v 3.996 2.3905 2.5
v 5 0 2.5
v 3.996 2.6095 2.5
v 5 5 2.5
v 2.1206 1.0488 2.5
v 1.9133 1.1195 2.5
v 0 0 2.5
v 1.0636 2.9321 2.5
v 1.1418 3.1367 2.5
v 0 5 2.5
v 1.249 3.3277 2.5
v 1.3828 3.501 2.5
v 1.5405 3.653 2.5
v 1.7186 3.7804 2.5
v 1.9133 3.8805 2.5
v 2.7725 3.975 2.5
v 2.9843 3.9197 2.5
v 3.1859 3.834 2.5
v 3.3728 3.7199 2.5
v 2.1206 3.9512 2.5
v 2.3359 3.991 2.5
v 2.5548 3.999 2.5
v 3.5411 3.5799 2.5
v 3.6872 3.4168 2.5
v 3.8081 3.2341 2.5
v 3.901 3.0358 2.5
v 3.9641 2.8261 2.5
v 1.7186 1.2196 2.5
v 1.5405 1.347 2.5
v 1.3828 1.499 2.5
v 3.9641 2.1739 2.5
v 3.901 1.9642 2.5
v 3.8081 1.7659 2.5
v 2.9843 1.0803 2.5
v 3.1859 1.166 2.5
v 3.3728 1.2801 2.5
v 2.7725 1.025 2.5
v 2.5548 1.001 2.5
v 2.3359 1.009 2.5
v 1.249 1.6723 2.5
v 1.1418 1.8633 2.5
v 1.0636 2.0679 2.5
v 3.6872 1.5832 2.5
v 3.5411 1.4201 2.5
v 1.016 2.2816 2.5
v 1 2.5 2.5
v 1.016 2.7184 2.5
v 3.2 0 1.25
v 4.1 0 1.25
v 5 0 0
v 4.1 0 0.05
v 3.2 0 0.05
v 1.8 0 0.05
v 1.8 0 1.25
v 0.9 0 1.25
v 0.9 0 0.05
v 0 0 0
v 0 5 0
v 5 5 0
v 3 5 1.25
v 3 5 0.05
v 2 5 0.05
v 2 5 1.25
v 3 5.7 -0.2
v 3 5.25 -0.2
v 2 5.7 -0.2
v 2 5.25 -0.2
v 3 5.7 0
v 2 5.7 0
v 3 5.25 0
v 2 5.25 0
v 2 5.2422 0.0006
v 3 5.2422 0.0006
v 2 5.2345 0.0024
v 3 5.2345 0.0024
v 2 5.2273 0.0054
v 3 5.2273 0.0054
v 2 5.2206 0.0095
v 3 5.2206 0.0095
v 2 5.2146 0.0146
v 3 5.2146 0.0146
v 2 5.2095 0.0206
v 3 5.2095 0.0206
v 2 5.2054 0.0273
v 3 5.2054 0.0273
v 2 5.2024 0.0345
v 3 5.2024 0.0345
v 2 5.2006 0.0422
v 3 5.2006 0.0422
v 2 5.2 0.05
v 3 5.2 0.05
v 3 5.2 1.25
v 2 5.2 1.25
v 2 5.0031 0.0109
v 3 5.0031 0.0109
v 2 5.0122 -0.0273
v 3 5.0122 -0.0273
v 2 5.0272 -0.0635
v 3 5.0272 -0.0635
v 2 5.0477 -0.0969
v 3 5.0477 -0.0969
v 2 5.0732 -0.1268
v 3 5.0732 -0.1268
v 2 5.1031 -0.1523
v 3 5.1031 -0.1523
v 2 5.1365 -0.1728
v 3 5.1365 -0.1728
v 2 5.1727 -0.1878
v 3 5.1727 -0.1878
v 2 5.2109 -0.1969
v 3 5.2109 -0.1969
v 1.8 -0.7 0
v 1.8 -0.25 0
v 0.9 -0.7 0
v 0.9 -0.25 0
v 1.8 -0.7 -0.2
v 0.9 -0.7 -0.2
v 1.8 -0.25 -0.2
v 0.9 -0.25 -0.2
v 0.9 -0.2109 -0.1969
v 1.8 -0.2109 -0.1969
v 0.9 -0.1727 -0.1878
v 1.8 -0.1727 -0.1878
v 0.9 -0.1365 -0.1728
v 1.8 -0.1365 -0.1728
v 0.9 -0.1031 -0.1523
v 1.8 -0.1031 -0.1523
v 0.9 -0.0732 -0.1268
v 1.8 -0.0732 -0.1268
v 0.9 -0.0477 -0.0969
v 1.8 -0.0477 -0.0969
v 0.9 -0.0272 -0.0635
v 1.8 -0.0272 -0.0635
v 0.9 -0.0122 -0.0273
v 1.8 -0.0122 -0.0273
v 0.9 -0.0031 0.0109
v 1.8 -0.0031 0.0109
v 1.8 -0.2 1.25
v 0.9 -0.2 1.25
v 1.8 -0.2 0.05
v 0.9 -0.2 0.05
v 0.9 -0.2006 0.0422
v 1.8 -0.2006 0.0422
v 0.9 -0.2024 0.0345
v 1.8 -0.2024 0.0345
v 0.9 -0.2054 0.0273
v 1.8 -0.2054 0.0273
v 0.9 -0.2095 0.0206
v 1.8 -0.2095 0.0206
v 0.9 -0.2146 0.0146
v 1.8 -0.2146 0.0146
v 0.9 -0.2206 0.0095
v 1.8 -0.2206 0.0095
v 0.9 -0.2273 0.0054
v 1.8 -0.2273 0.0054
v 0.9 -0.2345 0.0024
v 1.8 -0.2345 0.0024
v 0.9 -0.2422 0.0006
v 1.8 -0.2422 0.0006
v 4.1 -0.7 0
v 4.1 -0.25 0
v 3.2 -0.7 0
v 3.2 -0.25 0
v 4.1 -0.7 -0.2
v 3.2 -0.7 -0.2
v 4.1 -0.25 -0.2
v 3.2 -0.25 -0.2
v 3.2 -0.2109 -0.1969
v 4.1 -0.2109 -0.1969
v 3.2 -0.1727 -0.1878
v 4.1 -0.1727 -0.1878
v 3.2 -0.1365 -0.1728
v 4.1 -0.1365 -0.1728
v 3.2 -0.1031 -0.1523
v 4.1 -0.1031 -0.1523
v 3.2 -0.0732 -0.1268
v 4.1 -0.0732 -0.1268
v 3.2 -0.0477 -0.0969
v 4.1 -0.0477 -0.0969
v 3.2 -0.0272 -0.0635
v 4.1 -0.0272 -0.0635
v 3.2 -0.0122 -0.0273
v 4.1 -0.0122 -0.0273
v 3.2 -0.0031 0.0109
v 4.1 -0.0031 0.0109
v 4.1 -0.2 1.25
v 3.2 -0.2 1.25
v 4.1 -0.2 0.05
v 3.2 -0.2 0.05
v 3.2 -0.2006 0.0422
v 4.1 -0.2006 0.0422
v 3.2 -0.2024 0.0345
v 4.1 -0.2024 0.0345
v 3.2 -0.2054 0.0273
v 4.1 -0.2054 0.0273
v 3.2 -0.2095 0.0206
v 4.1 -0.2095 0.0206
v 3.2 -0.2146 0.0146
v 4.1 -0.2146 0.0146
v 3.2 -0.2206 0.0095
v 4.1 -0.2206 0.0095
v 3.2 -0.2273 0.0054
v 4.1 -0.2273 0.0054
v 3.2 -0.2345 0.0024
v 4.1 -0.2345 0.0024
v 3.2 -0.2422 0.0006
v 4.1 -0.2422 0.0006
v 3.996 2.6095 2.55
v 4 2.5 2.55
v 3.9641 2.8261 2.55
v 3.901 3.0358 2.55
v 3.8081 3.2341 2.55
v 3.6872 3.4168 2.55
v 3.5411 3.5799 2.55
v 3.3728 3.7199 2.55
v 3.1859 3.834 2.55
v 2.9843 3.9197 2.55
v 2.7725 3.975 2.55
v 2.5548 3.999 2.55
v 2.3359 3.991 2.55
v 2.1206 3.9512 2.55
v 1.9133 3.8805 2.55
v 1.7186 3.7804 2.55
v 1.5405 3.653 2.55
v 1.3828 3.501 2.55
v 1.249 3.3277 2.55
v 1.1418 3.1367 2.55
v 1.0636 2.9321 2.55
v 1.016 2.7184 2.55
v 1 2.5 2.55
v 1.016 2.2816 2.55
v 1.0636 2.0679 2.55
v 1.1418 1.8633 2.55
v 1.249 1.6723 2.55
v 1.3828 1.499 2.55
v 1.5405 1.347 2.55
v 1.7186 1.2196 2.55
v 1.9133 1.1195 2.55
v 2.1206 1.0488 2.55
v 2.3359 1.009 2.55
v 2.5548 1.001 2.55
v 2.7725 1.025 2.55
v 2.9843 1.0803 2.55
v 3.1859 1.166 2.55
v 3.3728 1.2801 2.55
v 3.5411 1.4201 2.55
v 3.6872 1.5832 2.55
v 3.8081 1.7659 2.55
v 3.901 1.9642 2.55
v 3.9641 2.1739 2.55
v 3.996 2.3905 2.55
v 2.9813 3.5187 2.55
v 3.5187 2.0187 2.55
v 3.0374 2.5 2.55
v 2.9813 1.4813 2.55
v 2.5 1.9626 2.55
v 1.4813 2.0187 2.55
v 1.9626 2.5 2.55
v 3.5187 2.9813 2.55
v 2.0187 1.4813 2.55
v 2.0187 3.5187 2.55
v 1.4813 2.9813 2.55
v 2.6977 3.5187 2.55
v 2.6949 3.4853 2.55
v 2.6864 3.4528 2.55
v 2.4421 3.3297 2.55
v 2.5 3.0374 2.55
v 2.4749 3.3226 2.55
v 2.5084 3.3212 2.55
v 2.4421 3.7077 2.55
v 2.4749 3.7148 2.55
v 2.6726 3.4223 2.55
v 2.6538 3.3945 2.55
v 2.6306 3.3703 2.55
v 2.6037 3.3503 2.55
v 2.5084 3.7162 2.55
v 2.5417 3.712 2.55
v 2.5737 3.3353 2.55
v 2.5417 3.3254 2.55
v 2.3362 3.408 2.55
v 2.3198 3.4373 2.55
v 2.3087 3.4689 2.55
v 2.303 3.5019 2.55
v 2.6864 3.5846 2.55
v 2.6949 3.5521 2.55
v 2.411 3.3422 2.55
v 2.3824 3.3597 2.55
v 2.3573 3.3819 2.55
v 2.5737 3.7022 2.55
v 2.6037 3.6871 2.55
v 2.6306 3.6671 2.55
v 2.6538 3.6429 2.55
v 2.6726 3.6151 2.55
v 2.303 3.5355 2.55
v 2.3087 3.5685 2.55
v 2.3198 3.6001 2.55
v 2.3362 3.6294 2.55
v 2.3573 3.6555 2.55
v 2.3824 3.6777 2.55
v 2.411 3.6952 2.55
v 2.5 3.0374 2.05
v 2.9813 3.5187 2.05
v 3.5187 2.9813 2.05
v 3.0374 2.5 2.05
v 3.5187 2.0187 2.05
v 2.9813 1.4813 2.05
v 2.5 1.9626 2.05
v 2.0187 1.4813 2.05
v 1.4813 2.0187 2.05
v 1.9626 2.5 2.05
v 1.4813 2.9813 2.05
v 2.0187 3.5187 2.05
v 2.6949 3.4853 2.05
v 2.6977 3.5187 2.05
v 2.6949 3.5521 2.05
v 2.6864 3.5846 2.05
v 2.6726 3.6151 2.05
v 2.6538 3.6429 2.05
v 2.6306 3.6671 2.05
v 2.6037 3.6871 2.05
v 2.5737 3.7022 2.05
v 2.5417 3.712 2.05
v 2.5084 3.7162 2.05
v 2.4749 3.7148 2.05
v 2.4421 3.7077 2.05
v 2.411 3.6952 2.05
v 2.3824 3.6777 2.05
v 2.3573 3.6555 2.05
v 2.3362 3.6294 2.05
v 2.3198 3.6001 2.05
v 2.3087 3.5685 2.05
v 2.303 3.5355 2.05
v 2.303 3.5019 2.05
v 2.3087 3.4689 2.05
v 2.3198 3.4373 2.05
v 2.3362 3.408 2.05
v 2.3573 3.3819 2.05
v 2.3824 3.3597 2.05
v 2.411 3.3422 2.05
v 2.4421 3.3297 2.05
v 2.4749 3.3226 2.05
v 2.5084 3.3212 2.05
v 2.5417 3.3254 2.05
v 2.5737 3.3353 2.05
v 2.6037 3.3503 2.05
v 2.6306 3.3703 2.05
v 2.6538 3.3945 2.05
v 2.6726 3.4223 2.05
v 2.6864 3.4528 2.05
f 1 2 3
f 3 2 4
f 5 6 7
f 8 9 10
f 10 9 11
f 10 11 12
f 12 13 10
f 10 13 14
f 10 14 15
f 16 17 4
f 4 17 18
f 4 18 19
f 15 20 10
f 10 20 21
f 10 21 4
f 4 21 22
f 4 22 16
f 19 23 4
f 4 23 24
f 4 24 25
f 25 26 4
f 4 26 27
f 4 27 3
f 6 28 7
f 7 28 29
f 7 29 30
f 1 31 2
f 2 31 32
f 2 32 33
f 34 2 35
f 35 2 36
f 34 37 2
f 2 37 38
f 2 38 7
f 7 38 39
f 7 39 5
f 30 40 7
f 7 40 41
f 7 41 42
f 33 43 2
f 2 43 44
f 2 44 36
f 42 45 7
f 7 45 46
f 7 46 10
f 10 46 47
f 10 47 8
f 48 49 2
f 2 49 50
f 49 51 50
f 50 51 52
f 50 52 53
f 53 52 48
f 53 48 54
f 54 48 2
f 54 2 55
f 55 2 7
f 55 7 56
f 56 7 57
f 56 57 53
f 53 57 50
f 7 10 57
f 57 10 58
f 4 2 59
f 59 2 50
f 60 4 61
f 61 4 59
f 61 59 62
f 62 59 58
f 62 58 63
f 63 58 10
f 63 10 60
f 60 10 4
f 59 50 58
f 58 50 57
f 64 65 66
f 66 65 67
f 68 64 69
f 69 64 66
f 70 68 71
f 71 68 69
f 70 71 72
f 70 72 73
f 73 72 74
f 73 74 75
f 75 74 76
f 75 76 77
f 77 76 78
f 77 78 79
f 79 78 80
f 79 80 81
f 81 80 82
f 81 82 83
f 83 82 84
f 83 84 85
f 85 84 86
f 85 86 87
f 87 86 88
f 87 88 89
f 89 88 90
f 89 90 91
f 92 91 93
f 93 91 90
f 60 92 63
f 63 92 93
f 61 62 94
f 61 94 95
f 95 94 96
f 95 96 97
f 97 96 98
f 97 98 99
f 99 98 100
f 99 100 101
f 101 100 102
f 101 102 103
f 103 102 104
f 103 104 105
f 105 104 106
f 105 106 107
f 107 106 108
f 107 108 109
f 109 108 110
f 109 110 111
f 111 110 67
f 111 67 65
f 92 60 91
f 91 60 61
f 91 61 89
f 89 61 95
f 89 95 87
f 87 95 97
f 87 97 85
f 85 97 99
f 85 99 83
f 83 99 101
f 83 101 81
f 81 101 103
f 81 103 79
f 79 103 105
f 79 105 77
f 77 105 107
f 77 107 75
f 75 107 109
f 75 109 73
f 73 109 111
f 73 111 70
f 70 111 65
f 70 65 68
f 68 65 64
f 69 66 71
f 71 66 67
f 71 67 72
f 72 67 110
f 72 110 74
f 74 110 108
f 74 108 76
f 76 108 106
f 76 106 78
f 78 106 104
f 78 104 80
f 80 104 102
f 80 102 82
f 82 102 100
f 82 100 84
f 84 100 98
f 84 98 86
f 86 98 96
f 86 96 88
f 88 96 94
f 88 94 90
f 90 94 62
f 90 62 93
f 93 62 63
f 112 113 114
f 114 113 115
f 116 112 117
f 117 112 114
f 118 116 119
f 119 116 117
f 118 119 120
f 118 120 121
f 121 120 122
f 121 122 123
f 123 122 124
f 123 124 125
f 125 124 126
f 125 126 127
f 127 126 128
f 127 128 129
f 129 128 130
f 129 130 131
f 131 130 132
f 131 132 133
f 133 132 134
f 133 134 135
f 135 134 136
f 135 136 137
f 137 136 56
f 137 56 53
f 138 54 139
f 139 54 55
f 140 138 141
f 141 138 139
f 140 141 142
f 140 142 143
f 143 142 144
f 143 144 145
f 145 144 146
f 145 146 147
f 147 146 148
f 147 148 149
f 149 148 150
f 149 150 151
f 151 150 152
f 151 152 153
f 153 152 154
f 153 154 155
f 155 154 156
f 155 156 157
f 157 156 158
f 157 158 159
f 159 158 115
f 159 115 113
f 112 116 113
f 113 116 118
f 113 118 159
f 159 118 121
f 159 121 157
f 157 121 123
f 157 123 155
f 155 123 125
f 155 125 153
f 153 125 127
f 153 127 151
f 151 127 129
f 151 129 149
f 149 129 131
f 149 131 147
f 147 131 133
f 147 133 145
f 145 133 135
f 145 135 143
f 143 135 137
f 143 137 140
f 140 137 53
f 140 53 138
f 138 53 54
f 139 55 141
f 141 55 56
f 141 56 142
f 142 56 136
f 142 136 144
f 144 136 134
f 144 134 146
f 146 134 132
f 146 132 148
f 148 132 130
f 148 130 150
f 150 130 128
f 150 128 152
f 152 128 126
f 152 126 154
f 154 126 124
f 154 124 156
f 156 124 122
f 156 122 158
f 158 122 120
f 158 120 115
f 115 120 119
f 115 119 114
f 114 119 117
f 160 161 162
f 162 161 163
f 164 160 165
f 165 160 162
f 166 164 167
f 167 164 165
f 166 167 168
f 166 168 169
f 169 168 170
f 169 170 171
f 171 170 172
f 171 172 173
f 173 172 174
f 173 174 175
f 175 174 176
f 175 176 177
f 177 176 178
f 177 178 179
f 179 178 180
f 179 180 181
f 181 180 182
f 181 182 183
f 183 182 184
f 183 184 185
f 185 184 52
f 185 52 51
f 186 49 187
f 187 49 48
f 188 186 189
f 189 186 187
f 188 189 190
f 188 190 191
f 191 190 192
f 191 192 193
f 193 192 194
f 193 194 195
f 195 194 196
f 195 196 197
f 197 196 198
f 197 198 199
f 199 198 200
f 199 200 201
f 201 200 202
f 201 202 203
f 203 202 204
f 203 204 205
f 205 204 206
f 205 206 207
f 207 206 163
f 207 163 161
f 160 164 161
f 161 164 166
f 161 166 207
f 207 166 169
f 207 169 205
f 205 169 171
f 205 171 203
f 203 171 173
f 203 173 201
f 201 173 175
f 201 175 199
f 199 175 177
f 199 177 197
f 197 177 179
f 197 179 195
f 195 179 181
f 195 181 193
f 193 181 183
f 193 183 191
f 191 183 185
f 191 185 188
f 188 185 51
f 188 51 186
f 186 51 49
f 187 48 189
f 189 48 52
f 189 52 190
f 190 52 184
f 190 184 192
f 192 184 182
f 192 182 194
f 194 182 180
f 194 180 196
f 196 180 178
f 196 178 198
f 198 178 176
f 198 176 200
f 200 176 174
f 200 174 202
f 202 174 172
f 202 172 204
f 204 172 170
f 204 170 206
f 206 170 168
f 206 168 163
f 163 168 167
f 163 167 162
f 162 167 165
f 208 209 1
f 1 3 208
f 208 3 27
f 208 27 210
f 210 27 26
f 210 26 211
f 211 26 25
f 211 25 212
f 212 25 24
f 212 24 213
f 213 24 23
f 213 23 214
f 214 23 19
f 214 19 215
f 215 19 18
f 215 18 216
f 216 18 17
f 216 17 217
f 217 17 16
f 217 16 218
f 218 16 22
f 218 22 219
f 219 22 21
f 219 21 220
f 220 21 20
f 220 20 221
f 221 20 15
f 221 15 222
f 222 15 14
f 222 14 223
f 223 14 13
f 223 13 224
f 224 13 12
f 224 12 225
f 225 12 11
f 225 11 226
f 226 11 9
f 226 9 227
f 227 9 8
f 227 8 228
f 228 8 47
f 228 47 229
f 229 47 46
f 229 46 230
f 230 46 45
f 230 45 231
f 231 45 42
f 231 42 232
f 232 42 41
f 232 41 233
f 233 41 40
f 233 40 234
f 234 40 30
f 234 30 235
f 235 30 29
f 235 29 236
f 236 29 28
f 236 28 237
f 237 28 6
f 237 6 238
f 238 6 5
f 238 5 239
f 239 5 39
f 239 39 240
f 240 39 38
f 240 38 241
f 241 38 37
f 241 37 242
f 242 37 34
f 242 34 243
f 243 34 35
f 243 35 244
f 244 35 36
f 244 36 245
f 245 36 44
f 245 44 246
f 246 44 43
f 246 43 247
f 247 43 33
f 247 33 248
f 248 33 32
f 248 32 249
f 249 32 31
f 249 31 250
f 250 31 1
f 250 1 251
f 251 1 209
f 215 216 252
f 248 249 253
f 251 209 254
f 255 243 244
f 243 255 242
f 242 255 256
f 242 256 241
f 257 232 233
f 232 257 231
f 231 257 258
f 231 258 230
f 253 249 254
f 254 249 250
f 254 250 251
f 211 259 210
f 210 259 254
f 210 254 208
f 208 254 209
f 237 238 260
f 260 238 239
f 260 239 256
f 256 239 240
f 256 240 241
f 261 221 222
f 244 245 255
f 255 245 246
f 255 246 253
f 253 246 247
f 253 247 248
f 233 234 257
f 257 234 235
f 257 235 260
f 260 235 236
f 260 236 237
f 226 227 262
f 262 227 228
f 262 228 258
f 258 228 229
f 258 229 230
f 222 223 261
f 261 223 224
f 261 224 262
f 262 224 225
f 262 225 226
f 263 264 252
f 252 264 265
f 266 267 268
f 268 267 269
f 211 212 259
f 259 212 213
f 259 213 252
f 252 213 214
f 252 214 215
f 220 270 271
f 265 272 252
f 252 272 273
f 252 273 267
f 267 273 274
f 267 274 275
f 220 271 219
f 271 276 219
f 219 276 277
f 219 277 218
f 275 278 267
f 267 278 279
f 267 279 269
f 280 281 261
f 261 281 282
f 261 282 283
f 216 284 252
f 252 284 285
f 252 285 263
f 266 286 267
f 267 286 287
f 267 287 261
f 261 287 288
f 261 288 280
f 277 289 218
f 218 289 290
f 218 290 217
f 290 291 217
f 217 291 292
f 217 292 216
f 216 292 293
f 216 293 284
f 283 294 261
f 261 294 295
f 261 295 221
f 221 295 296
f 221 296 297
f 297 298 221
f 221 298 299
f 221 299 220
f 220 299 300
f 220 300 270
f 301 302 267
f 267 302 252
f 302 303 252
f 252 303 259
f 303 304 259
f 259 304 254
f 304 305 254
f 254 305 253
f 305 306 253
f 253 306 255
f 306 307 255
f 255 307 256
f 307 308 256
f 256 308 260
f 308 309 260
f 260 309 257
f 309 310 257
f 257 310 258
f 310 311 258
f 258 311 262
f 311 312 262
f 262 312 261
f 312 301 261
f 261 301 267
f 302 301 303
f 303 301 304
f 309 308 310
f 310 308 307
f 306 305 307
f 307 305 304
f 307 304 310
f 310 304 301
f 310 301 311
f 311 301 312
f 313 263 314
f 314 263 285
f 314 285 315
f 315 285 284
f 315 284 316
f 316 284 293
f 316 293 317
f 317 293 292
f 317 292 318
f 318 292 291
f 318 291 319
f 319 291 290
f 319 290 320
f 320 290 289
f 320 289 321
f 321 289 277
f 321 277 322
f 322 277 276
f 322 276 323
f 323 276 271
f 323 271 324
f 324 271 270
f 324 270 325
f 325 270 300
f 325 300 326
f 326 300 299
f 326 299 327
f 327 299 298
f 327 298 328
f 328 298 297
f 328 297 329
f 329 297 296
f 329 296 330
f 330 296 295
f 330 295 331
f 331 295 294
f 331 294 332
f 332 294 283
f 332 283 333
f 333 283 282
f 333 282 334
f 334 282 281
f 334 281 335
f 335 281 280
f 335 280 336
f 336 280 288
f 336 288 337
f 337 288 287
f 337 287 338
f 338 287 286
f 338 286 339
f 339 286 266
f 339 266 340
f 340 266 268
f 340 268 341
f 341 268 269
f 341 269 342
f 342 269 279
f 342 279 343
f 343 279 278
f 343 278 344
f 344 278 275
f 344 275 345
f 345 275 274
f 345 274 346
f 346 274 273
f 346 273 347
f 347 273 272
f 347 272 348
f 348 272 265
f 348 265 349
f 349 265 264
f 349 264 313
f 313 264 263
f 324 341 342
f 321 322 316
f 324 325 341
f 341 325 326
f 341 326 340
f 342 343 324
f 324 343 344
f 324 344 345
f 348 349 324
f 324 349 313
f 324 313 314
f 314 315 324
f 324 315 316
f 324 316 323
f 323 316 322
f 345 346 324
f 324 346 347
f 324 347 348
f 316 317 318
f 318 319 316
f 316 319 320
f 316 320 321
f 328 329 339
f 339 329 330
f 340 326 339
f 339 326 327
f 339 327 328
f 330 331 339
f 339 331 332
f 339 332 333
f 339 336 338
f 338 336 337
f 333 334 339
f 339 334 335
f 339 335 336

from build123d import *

# Parameters (mm, degrees)
SKETCH1_W           = 5
SKETCH1_H           = 5
BOSS_EXTRUDE1_DEPTH = 2.5
EXTRUDE_THIN1_DEPTH = 0.5
EXTRUDE_THIN2_DEPTH = 0.45
LPATTERN1_COUNT     = 2
LPATTERN1_PITCH     = 2.3
SKETCH4_R           = 1.5
BOSS_EXTRUDE2_DEPTH = 0.05
SKETCH5_R           = 0.197706898
CUT_EXTRUDE2_DEPTH  = 0.5


with BuildPart() as part:
    # Sketch1 → Boss-Extrude1 (new body)
    with BuildSketch(Plane.XY):
        with Locations((2.5, 2.5)):
            Rectangle(SKETCH1_W, SKETCH1_H)
    extrude(amount=BOSS_EXTRUDE1_DEPTH)

    # Sketch2 → Extrude-Thin1 (add, symmetric)
    with BuildSketch(Plane(origin=(2.5, 0, 0), x_dir=(0, 0, -1), z_dir=(1, 0, 0))):
        with BuildLine():
            Line((-1.25, 5), (-0.05, 5))
            ThreePointArc((-0.05, 5), (0.126776695, 5.073223305), (0.2, 5.25))
            Line((0.2, 5.25), (0.2, 5.7))
            Line((0.2, 5.7), (0, 5.7))
            Line((0, 5.7), (0, 5.25))
            ThreePointArc((0, 5.25), (-0.014644661, 5.214644661), (-0.05, 5.2))
            Line((-0.05, 5.2), (-1.25, 5.2))
            Line((-1.25, 5.2), (-1.25, 5))
        make_face()
    extrude(amount=EXTRUDE_THIN1_DEPTH, both=True)

    # Sketch3 → Extrude-Thin2 (add, symmetric)
    with BuildSketch(Plane(origin=(1.35, 0, 0), x_dir=(0, 0, -1), z_dir=(1, 0, 0))):
        with BuildLine():
            Line((-1.25, 0), (-0.05, 0))
            ThreePointArc((-0.05, 0), (0.126776695, -0.073223305), (0.2, -0.25))
            Line((0.2, -0.25), (0.2, -0.7))
            Line((0.2, -0.7), (0, -0.7))
            Line((0, -0.7), (0, -0.25))
            ThreePointArc((0, -0.25), (-0.014644661, -0.214644661), (-0.05, -0.2))
            Line((-0.05, -0.2), (-1.25, -0.2))
            Line((-1.25, -0.2), (-1.25, 0))
        make_face()
    extrude_thin2 = extrude(amount=EXTRUDE_THIN2_DEPTH, both=True)

    # LPattern1: Extrude-Thin2 ×2
    with Locations(*[(i * LPATTERN1_PITCH, 0, 0) for i in range(1, LPATTERN1_COUNT)]):
        add(extrude_thin2)

    # Sketch4 → Boss-Extrude2 (add)
    with BuildSketch(Plane.XY.offset(2.5)):
        with Locations((2.5, 2.5)):
            Circle(SKETCH4_R)
    extrude(amount=BOSS_EXTRUDE2_DEPTH)

    # Sketch5 → Cut-Extrude2 (cut)
    with BuildSketch(Plane.XY.offset(2.55)):
        with Locations((2.5, 3.518700577)):
            Circle(SKETCH5_R)
        Polygon((2.018700577, 3.518700577), (2.5, 3.037401154), (2.981299423, 3.518700577), (3.518700577, 2.981299423), (3.037401154, 2.5), (3.518700577, 2.018700577), (2.981299423, 1.481299423), (2.5, 1.962598846), (2.018700577, 1.481299423), (1.481299423, 2.018700577), (1.962598846, 2.5), (1.481299423, 2.981299423), align=None)
    extrude(amount=-CUT_EXTRUDE2_DEPTH, mode=Mode.SUBTRACT)


solid = part.part
